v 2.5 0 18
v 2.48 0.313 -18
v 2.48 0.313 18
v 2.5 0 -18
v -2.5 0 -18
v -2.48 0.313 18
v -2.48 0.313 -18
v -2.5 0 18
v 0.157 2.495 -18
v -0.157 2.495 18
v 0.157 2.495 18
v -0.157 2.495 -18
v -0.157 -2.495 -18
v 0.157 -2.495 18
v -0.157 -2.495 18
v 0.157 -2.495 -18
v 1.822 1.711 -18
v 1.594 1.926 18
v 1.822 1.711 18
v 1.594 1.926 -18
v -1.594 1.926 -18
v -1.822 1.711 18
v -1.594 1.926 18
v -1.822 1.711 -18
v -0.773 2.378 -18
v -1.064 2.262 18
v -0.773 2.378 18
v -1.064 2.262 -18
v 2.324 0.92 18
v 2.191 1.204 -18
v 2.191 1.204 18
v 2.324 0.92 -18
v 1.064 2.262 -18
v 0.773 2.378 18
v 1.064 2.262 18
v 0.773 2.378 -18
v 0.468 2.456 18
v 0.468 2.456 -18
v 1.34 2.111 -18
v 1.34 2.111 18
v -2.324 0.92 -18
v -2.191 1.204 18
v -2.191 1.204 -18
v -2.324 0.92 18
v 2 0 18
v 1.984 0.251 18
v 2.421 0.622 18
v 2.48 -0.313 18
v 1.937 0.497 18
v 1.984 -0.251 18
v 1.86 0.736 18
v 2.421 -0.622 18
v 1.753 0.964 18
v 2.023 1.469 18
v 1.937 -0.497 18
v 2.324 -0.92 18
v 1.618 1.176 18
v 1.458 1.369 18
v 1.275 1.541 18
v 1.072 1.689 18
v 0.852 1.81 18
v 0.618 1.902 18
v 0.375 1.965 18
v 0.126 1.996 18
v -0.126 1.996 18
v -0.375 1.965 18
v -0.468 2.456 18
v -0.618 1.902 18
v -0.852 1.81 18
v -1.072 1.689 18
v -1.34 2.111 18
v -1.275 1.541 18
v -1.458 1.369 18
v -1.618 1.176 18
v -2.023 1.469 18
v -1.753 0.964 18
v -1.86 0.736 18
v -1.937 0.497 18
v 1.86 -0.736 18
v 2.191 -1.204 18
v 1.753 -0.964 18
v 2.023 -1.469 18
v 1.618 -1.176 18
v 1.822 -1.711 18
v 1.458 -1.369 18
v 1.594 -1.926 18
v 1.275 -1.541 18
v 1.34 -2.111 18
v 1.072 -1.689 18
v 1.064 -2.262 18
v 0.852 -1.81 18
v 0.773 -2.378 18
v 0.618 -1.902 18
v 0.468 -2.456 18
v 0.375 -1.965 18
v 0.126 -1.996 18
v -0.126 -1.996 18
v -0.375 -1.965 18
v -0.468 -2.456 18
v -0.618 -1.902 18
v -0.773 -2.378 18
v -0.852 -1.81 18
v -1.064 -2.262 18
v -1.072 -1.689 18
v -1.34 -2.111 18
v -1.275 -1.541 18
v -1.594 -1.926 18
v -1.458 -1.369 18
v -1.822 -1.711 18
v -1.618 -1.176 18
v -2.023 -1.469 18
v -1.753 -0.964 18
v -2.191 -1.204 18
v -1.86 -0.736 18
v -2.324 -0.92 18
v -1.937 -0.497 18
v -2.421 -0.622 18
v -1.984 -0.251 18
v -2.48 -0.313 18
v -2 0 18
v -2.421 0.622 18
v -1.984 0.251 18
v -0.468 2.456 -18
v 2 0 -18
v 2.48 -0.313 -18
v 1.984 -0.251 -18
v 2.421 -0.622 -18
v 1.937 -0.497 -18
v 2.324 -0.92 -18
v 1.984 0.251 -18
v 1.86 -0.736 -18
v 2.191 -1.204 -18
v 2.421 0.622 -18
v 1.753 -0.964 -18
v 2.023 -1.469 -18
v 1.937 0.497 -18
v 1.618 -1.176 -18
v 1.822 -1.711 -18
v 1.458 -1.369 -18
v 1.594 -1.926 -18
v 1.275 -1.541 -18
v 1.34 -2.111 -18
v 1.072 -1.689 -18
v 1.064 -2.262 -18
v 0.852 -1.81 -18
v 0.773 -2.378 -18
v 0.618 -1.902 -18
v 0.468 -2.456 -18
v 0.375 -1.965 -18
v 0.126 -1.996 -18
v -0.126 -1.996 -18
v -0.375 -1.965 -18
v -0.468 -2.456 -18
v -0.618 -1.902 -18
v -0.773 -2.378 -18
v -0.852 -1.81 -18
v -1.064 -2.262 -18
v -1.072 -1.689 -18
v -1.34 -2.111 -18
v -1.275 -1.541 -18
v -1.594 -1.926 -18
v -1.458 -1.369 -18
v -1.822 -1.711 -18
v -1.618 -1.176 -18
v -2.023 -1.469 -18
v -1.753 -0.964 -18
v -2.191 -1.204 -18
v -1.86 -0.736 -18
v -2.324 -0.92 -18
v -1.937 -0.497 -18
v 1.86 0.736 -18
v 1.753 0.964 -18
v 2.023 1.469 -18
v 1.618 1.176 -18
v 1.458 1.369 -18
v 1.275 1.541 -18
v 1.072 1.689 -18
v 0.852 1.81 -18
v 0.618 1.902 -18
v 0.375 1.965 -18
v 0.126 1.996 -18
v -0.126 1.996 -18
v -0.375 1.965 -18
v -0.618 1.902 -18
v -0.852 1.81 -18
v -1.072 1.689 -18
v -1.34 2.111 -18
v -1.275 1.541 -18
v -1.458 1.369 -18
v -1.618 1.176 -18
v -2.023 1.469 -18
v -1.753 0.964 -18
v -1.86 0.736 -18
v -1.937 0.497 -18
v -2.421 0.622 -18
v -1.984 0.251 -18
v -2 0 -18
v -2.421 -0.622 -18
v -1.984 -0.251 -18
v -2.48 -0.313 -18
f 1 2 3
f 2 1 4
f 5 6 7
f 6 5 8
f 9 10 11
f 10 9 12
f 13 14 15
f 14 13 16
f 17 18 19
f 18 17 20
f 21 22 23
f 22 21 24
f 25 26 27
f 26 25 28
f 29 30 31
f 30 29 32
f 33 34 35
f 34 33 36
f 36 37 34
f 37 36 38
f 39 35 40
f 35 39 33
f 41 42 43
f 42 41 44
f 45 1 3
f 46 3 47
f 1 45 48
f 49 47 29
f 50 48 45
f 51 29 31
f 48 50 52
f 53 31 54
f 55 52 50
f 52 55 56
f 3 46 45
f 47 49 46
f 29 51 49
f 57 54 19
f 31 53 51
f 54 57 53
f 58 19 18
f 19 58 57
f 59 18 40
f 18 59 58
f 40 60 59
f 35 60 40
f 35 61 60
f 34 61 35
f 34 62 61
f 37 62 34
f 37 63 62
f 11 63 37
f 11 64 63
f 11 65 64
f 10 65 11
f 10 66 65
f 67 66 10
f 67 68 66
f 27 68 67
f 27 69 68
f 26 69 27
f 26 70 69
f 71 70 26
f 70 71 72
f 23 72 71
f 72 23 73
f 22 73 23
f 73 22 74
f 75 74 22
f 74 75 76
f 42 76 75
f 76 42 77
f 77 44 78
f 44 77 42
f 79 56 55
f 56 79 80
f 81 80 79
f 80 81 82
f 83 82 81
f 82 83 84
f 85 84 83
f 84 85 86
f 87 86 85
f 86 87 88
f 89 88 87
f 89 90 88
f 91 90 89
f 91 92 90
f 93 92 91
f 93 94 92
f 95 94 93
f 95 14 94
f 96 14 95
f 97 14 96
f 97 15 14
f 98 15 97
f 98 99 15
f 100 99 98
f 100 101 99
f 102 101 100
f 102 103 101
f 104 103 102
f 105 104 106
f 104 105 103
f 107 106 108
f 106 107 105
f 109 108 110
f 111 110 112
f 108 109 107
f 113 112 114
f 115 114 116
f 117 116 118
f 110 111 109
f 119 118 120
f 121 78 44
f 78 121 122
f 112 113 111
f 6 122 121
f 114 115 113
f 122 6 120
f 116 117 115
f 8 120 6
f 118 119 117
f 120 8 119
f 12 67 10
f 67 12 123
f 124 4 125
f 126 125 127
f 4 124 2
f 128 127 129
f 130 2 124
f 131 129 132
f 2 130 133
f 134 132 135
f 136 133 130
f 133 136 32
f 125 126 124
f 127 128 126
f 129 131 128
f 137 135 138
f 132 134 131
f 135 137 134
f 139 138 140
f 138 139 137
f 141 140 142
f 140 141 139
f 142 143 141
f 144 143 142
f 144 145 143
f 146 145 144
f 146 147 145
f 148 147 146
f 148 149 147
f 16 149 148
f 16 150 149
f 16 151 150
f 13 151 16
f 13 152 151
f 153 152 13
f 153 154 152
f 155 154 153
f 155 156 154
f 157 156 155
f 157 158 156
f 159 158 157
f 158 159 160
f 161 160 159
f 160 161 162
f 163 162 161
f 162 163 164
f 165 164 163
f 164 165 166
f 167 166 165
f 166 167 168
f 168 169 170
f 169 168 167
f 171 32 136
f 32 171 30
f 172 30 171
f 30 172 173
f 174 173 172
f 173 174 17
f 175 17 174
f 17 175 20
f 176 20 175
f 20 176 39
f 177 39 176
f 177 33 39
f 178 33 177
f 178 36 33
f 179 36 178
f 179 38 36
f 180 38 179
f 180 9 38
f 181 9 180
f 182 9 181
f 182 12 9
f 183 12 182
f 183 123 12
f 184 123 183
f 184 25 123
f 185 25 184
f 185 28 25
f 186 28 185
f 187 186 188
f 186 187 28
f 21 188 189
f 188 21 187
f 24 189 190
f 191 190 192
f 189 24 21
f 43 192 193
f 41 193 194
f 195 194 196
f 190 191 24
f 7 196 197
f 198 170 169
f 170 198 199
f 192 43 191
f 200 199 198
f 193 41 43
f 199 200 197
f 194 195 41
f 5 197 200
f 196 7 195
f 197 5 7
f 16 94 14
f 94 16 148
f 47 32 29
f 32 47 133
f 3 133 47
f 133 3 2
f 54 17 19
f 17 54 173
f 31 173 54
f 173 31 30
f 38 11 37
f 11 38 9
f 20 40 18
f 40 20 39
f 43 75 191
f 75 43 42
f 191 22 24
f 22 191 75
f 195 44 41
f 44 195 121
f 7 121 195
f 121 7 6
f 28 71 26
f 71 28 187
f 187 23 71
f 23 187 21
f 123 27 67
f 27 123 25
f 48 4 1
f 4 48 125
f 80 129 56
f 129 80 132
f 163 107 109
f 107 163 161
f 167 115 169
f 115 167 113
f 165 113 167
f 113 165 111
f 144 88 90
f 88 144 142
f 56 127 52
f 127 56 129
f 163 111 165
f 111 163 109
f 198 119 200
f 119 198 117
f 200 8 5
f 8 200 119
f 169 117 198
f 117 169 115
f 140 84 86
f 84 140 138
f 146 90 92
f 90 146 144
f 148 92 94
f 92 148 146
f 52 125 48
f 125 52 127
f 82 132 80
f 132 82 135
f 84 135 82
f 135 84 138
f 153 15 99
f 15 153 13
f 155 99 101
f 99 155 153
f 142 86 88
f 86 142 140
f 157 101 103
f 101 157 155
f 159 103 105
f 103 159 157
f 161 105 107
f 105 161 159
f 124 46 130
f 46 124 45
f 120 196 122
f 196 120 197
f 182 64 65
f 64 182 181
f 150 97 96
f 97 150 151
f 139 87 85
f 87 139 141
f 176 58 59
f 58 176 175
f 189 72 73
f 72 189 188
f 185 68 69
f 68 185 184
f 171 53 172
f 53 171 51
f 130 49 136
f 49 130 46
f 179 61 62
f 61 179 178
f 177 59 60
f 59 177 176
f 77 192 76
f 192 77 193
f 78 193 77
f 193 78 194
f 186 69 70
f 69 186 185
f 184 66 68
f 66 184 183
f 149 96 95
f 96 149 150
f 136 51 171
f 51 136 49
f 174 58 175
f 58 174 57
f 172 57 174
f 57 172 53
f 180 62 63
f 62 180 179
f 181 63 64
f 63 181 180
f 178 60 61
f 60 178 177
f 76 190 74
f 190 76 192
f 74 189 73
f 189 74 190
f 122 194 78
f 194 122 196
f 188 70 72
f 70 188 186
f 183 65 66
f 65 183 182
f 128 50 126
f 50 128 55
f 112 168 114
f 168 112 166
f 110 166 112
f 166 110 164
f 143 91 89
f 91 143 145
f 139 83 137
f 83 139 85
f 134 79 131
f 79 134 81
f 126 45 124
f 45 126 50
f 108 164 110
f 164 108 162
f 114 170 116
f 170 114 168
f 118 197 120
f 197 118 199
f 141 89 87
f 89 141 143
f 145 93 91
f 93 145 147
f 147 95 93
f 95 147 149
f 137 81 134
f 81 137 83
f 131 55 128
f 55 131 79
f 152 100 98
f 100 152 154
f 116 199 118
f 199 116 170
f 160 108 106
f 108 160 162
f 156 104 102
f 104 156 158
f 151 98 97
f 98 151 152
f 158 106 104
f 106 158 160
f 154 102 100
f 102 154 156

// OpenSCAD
$fn = 50;


difference() {
	union() {
		translate(v = [0, 0, -18.0000000000]) {
			cylinder(h = 36, r = 2.5000000000);
		}
	}
	union() {
		translate(v = [0, 0, -100.0000000000]) {
			cylinder(h = 200, r = 2.0000000000);
		}
	}
}
